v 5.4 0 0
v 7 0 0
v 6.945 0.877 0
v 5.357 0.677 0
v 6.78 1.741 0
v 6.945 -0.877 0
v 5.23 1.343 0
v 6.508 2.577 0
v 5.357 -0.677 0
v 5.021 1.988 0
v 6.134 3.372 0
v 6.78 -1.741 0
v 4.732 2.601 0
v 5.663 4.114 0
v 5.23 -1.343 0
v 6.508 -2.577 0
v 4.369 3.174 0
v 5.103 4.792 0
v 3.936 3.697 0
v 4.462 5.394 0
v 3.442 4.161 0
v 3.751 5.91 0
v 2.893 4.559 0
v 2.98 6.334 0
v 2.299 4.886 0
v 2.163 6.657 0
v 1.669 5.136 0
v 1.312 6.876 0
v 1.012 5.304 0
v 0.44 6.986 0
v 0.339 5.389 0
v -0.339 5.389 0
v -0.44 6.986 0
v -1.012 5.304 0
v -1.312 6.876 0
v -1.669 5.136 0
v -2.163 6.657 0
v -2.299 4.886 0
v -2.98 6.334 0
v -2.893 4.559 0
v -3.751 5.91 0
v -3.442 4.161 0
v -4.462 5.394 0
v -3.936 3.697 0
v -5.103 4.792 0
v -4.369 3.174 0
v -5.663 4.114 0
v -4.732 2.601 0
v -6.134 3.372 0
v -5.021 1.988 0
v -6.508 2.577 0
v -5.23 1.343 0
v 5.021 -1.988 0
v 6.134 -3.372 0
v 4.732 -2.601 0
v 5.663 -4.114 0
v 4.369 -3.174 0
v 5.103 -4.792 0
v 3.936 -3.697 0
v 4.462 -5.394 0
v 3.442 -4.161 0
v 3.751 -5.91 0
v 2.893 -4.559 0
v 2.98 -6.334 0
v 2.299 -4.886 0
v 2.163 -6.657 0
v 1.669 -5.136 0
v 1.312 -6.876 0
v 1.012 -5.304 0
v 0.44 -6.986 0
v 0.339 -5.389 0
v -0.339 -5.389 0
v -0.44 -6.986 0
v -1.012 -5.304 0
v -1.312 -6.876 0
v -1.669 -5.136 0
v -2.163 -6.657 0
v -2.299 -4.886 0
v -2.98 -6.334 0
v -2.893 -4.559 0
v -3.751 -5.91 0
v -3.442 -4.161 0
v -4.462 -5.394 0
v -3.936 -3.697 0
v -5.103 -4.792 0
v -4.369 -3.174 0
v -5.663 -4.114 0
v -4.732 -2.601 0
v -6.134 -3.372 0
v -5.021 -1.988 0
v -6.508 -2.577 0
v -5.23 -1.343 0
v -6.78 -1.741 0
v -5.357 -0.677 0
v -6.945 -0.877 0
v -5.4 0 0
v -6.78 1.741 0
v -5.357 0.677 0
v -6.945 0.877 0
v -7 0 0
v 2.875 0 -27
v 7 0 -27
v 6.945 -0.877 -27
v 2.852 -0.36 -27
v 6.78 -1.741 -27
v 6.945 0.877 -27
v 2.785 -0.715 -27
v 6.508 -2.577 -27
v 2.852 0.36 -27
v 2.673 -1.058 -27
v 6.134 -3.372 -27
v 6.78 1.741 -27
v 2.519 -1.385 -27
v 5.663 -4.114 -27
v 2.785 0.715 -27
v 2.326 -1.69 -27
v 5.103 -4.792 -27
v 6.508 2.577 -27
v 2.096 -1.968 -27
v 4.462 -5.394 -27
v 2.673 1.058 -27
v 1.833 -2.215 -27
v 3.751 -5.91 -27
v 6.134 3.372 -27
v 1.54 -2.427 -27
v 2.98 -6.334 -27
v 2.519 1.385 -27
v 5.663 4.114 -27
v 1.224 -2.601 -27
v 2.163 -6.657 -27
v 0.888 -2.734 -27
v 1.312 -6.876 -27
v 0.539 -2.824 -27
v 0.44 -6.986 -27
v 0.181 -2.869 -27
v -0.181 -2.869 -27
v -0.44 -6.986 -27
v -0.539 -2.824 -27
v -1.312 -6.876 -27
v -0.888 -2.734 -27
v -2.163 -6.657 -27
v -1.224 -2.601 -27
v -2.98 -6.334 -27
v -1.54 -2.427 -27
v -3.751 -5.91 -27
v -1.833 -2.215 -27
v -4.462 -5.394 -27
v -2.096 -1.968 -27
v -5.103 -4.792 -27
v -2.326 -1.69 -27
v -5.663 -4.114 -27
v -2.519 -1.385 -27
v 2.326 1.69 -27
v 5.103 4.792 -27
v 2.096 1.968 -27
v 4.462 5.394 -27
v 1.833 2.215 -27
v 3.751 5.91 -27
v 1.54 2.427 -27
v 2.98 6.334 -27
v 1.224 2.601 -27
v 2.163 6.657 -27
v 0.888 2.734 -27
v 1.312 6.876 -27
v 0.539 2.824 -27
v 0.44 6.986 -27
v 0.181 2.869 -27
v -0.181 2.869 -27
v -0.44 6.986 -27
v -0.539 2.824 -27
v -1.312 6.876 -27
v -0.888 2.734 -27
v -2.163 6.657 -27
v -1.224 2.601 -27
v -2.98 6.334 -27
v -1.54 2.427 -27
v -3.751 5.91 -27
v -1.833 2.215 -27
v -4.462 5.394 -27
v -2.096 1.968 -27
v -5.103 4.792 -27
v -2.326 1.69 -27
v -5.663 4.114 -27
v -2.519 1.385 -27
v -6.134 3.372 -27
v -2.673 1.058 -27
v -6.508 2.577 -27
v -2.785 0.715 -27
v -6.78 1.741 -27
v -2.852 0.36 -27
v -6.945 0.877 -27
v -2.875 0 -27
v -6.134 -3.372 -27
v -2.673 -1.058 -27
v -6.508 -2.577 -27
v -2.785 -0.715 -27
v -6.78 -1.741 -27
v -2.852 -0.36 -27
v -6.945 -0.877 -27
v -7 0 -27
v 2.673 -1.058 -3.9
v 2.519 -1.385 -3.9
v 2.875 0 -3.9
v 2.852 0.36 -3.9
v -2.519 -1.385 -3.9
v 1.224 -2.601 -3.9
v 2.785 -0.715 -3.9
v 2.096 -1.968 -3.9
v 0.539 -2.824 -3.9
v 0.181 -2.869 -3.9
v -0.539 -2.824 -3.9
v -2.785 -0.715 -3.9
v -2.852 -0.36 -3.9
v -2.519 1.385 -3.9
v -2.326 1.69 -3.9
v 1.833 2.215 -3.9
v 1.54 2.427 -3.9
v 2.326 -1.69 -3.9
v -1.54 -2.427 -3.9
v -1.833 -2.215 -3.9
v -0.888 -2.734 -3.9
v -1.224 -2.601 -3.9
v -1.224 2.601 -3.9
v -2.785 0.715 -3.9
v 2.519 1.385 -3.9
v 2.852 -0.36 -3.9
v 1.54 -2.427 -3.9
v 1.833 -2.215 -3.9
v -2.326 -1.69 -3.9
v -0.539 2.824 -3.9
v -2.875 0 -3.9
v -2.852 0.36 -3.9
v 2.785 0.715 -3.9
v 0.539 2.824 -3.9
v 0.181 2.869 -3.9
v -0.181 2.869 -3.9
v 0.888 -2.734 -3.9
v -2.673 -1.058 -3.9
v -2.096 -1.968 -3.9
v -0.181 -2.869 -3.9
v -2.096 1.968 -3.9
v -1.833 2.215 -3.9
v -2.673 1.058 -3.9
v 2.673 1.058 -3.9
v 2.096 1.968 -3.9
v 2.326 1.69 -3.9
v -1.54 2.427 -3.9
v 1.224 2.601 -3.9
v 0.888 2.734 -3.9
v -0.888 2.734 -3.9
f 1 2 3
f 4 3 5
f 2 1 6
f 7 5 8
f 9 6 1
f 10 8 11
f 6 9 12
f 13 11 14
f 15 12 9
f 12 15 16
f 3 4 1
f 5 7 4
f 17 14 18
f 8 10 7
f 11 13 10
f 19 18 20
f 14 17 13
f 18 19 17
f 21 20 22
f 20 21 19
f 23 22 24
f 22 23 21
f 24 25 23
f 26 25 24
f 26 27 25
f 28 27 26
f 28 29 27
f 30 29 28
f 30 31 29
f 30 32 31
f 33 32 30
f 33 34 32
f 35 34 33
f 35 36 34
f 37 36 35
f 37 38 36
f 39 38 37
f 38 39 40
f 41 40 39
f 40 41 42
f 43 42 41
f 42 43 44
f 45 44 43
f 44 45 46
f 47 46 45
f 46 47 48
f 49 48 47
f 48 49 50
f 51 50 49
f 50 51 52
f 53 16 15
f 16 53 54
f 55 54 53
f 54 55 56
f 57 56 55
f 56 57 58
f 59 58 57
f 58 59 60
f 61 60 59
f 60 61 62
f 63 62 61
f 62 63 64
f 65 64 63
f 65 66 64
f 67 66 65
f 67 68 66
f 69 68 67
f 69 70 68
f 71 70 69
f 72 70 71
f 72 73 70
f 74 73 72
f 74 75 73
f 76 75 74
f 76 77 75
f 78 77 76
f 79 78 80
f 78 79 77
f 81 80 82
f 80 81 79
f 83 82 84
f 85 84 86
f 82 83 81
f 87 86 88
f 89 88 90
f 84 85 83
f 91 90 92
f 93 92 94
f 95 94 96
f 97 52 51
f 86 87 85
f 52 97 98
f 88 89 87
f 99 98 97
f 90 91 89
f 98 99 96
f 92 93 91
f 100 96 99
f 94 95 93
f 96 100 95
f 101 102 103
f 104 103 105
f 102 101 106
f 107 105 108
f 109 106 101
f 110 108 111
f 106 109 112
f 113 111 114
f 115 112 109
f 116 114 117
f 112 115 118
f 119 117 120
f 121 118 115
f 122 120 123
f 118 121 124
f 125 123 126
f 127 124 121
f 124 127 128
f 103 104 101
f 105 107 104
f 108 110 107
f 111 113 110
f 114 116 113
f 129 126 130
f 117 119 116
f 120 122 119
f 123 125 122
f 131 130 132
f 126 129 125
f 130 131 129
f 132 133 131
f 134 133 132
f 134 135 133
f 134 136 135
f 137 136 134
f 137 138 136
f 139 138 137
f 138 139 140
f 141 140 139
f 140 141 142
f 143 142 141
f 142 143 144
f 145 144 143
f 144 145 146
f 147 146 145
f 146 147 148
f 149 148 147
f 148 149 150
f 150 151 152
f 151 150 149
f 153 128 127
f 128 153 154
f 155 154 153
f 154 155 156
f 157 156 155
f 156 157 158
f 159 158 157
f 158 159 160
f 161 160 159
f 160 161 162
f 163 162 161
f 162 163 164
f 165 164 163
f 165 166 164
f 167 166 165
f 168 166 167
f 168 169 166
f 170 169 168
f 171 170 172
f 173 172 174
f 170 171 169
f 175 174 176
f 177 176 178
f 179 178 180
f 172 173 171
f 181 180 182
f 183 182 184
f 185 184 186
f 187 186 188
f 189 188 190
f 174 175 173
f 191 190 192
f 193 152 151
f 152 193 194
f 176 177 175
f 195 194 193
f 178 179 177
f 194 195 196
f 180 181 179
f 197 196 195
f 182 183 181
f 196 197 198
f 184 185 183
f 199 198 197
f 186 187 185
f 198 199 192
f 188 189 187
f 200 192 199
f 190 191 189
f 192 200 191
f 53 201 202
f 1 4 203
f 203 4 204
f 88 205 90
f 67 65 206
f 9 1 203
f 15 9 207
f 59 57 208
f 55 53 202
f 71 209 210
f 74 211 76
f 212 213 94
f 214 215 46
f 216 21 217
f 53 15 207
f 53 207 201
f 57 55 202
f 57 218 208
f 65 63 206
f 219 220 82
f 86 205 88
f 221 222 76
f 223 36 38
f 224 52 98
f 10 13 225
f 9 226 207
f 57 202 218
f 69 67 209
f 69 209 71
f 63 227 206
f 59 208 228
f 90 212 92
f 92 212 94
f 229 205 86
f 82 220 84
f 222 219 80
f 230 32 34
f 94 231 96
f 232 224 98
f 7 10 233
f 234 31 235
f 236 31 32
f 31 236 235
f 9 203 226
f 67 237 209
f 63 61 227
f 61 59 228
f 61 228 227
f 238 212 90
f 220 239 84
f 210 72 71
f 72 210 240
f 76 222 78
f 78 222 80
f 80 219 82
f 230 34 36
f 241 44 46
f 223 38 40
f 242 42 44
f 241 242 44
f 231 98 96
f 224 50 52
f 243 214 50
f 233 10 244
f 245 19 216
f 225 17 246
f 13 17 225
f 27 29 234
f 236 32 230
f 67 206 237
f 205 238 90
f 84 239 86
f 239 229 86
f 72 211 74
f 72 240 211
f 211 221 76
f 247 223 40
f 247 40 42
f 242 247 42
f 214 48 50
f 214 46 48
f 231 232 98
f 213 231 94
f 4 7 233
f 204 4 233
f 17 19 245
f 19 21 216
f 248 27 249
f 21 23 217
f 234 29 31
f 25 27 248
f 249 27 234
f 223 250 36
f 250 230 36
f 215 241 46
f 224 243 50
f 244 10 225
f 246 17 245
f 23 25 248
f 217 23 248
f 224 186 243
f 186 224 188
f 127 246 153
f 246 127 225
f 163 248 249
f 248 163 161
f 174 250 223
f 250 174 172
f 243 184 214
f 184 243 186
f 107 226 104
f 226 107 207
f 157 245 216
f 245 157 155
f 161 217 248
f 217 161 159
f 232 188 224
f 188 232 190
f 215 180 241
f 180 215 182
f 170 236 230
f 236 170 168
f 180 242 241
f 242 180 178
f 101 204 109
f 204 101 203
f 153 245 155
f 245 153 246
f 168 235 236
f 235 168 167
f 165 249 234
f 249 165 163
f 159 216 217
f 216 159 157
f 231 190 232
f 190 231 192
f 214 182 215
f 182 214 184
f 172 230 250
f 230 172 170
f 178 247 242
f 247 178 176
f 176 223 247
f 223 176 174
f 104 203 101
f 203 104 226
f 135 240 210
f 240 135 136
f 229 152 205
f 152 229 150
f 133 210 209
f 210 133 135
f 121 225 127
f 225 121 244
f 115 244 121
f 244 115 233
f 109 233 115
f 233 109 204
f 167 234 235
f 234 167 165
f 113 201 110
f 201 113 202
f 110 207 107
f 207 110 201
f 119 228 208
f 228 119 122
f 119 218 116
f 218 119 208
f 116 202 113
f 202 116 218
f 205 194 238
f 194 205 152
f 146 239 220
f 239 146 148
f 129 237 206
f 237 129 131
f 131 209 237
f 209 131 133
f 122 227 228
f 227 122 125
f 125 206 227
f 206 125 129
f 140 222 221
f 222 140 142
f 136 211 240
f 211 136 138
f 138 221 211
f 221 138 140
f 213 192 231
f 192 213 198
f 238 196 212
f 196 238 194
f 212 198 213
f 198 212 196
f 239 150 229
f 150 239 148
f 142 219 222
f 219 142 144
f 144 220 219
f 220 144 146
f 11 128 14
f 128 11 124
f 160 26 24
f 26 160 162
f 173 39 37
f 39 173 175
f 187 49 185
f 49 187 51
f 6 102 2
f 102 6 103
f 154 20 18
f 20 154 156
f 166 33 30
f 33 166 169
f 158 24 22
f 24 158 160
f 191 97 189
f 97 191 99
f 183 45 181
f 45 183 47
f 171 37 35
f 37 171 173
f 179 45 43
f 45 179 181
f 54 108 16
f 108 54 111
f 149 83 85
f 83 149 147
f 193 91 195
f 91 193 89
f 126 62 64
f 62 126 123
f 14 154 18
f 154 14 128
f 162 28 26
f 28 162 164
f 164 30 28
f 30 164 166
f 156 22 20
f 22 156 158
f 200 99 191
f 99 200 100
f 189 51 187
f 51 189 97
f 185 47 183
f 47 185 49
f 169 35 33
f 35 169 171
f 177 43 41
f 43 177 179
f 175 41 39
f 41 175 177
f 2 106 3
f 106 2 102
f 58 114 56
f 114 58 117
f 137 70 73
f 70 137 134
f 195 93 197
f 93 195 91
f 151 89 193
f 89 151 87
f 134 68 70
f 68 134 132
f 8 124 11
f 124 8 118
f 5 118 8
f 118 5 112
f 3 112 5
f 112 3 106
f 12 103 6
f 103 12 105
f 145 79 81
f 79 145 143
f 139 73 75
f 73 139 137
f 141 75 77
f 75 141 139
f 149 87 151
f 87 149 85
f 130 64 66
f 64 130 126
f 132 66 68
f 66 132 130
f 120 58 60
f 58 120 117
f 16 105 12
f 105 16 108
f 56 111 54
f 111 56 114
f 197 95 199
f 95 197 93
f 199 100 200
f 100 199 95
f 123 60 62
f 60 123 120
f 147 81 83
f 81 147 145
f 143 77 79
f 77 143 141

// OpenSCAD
$fn = 50;


difference() {
	union() {
		translate(v = [0, 0, -27.0000000000]) {
			cylinder(h = 27, r = 7.0000000000);
		}
		cylinder(h = 0, r = 16.0000000000);
	}
	union() {
		translate(v = [0, 0, 0]) {
			rotate(a = [0, 0, 0]) {
				difference() {
					union() {
						#translate(v = [0, 0, -27.0000000000]) {
							cylinder(h = 27, r = 2.6000000000);
						}
						#translate(v = [0, 0, -3.9000000000]) {
							cylinder(h = 3.9000000000, r1 = 2.8750000000, r2 = 5.4000000000);
						}
						#translate(v = [0, 0, -27.0000000000]) {
							cylinder(h = 27, r = 2.8750000000);
						}
						#translate(v = [0, 0, -27.0000000000]) {
							cylinder(h = 27, r = 2.6000000000);
						}
					}
					union();
				}
			}
		}
	}
}
